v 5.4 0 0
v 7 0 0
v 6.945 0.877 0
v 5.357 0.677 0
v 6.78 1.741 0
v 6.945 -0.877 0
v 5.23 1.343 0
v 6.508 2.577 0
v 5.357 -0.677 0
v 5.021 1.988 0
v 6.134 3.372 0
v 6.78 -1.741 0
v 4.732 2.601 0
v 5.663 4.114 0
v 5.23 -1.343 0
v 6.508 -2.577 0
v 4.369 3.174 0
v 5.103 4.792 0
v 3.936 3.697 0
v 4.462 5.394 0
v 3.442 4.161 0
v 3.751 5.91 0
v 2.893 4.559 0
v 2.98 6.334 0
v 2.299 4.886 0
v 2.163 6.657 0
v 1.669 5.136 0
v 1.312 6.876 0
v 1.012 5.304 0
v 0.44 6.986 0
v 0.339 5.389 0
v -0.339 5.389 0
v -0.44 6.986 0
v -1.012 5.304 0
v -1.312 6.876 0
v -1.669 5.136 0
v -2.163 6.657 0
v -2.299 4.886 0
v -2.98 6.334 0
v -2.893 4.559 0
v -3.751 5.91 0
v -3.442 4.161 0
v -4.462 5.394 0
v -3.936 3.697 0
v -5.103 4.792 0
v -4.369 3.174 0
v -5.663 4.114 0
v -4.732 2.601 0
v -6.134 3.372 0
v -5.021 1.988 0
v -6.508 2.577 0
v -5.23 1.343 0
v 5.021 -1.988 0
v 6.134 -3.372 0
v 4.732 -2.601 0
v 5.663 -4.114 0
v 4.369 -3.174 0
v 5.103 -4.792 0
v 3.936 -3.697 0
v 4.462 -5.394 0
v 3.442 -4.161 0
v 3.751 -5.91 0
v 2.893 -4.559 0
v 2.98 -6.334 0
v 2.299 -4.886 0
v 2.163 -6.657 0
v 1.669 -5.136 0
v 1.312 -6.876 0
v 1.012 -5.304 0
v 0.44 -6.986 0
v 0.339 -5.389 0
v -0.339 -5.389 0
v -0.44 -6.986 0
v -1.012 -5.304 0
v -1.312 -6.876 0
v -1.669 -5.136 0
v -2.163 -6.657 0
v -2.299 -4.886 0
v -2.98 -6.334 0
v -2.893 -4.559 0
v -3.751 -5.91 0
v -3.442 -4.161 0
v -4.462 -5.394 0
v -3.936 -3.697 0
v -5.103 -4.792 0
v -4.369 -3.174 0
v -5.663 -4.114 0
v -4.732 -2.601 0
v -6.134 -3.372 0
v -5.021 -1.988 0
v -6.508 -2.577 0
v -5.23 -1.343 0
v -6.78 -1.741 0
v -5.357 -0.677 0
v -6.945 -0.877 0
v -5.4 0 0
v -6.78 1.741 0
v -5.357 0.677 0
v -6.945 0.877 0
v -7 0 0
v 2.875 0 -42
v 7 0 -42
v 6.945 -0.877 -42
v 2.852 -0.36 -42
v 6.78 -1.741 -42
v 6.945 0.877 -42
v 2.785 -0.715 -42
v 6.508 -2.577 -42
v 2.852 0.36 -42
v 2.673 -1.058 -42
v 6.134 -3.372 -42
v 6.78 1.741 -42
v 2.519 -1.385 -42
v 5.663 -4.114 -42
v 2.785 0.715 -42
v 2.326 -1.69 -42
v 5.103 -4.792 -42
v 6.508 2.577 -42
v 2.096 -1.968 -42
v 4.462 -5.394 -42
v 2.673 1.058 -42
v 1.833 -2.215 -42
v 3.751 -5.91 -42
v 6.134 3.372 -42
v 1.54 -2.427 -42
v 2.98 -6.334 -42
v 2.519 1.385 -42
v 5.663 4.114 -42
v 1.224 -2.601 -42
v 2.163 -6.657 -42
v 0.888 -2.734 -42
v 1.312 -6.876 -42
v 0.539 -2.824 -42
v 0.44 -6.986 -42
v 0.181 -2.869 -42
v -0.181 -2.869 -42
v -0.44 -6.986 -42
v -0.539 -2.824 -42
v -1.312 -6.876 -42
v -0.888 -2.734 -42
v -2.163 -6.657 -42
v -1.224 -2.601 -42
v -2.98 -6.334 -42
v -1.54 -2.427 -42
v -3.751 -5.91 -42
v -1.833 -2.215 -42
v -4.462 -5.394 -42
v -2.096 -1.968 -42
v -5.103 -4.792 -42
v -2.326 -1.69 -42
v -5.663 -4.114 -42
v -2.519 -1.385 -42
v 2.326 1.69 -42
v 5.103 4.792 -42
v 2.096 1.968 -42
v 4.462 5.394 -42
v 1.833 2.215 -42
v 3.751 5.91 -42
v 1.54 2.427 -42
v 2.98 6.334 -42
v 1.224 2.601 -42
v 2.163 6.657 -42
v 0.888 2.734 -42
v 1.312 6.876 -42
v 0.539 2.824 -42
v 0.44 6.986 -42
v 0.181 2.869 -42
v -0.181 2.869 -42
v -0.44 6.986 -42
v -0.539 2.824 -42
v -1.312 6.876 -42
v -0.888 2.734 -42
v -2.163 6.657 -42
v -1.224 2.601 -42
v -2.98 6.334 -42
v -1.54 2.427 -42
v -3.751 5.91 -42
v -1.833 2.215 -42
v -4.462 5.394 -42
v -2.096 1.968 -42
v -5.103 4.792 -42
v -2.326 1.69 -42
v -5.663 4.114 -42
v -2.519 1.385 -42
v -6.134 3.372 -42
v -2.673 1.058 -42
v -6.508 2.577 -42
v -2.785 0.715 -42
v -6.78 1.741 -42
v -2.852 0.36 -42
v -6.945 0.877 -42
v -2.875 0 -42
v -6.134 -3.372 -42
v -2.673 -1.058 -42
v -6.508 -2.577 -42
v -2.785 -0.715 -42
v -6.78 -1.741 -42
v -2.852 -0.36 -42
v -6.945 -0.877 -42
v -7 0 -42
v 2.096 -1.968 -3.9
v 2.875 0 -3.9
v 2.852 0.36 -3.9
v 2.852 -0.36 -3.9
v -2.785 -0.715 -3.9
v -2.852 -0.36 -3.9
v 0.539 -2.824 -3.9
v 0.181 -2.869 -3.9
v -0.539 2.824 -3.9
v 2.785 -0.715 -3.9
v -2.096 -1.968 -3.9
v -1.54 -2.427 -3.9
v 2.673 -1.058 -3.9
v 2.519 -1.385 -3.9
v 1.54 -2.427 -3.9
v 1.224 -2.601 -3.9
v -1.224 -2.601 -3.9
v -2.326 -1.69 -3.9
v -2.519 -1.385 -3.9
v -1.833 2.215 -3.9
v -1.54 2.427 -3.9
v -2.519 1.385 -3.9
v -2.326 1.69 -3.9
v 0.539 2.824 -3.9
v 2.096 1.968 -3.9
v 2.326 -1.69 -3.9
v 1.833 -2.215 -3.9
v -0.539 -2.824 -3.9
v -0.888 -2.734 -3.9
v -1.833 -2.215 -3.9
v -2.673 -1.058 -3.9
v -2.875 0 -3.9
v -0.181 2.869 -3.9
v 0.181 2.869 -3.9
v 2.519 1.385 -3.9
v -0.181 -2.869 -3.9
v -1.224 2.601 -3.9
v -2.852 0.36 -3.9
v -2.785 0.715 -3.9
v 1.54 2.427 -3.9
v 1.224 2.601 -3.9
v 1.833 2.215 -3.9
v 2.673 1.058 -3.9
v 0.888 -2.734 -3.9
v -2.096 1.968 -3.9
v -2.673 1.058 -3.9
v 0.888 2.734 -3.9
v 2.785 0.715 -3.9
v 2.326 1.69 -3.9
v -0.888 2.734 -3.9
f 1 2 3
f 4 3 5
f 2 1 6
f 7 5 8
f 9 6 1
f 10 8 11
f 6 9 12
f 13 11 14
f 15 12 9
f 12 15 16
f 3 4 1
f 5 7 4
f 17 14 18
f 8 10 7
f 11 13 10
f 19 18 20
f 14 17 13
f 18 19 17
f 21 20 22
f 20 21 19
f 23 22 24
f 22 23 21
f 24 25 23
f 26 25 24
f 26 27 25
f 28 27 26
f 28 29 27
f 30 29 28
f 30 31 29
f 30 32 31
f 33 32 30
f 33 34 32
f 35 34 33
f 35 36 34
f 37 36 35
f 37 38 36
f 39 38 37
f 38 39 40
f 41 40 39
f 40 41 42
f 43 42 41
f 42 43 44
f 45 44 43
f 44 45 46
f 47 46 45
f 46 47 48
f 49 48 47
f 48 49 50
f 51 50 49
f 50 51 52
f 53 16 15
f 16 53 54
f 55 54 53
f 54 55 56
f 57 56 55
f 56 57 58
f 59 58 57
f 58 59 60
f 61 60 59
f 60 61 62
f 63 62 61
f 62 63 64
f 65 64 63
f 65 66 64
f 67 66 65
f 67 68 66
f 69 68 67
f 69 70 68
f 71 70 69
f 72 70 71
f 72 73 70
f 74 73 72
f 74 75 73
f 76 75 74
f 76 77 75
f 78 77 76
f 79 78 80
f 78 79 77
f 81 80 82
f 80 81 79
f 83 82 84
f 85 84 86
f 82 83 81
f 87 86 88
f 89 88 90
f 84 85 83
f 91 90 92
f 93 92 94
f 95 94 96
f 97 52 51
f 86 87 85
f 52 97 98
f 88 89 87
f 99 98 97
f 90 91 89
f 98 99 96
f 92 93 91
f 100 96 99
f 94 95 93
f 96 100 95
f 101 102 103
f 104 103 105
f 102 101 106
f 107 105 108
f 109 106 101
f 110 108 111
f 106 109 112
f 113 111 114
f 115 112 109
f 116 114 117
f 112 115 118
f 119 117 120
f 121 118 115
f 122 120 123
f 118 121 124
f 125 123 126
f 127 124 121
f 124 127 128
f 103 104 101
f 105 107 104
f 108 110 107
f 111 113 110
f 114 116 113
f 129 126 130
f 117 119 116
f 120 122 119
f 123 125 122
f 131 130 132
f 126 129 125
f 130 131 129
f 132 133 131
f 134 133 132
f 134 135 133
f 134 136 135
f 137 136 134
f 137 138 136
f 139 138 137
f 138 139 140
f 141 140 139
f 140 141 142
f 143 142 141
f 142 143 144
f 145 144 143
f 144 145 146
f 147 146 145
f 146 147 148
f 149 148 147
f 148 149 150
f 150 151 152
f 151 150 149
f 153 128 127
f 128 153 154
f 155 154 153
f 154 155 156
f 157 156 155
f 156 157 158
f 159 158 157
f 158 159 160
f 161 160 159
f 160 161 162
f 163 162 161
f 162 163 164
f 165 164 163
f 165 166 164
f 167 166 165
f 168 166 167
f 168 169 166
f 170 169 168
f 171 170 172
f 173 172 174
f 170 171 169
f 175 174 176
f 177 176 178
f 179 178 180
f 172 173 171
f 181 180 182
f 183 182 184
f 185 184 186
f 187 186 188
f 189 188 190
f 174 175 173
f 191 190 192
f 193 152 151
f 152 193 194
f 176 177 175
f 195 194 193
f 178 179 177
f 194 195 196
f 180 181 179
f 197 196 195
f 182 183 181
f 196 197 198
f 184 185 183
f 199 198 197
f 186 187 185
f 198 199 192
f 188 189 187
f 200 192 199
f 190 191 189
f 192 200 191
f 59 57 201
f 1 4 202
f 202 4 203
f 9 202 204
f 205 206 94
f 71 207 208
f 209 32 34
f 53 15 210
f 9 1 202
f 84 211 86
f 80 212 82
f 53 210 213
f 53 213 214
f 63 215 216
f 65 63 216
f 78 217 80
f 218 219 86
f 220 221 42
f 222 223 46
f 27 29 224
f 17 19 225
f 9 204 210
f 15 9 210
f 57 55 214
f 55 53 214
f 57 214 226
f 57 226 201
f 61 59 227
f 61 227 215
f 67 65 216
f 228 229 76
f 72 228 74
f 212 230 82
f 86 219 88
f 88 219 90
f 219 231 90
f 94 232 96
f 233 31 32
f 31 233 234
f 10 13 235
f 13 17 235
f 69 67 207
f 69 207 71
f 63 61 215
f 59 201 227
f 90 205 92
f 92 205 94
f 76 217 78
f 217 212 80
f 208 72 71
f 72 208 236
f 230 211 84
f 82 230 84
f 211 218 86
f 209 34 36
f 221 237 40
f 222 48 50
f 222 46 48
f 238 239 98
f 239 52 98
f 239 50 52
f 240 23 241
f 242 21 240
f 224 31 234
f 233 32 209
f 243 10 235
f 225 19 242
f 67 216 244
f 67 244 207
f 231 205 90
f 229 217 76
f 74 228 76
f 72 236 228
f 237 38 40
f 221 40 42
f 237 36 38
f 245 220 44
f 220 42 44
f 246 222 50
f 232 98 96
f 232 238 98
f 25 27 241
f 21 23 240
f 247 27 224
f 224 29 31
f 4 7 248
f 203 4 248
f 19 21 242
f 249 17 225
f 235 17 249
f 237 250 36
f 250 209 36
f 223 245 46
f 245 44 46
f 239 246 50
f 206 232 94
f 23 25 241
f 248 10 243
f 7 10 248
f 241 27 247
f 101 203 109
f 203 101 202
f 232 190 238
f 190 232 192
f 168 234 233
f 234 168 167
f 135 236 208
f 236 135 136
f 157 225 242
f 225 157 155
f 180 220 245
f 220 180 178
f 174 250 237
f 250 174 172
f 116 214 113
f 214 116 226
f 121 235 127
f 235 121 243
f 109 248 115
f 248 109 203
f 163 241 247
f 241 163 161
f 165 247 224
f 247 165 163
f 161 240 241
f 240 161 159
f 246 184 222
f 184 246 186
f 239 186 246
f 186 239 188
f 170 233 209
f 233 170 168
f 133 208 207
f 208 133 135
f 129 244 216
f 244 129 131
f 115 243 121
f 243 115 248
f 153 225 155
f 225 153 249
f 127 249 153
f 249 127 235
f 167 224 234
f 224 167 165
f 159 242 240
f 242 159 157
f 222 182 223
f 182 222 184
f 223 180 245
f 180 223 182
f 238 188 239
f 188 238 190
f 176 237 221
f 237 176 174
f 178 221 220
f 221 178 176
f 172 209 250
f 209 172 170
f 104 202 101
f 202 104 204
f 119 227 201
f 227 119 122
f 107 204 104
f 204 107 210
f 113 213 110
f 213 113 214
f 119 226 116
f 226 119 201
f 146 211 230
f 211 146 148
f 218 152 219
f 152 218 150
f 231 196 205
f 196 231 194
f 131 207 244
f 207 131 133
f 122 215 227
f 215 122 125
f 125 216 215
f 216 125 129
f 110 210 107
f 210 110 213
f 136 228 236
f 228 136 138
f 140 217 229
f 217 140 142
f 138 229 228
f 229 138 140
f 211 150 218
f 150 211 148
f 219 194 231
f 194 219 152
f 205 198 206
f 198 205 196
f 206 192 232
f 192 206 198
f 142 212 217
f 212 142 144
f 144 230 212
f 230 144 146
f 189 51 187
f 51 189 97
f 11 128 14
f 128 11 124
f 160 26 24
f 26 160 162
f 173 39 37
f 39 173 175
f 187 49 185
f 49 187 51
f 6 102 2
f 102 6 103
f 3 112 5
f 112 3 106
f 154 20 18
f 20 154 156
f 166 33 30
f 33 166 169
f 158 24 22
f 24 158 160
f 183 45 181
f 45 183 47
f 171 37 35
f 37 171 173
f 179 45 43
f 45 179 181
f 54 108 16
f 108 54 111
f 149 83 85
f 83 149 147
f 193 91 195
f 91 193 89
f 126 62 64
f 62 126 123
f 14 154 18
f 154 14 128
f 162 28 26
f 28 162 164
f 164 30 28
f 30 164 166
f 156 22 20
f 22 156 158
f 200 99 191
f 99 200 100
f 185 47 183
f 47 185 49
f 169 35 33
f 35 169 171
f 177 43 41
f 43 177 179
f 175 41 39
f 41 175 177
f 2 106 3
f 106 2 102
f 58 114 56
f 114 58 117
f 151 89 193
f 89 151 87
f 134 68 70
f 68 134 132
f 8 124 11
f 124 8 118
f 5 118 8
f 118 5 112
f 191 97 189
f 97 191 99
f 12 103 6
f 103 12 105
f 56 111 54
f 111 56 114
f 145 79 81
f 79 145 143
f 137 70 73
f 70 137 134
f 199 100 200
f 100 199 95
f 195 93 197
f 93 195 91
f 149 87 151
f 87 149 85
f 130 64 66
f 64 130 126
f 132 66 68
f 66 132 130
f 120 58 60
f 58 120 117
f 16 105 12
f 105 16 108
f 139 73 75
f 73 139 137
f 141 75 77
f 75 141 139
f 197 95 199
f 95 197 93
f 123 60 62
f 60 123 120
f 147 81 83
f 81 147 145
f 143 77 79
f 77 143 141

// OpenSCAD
$fn = 50;


difference() {
	union() {
		translate(v = [0, 0, -42.0000000000]) {
			cylinder(h = 42, r = 7.0000000000);
		}
	}
	union() {
		translate(v = [0, 0, 0]) {
			rotate(a = [0, 0, 0]) {
				difference() {
					union() {
						#translate(v = [0, 0, -42.0000000000]) {
							cylinder(h = 42, r = 2.6000000000);
						}
						#translate(v = [0, 0, -3.9000000000]) {
							cylinder(h = 3.9000000000, r1 = 2.8750000000, r2 = 5.4000000000);
						}
						#translate(v = [0, 0, -42.0000000000]) {
							cylinder(h = 42, r = 2.8750000000);
						}
						#translate(v = [0, 0, -42.0000000000]) {
							cylinder(h = 42, r = 2.6000000000);
						}
					}
					union();
				}
			}
		}
	}
}
